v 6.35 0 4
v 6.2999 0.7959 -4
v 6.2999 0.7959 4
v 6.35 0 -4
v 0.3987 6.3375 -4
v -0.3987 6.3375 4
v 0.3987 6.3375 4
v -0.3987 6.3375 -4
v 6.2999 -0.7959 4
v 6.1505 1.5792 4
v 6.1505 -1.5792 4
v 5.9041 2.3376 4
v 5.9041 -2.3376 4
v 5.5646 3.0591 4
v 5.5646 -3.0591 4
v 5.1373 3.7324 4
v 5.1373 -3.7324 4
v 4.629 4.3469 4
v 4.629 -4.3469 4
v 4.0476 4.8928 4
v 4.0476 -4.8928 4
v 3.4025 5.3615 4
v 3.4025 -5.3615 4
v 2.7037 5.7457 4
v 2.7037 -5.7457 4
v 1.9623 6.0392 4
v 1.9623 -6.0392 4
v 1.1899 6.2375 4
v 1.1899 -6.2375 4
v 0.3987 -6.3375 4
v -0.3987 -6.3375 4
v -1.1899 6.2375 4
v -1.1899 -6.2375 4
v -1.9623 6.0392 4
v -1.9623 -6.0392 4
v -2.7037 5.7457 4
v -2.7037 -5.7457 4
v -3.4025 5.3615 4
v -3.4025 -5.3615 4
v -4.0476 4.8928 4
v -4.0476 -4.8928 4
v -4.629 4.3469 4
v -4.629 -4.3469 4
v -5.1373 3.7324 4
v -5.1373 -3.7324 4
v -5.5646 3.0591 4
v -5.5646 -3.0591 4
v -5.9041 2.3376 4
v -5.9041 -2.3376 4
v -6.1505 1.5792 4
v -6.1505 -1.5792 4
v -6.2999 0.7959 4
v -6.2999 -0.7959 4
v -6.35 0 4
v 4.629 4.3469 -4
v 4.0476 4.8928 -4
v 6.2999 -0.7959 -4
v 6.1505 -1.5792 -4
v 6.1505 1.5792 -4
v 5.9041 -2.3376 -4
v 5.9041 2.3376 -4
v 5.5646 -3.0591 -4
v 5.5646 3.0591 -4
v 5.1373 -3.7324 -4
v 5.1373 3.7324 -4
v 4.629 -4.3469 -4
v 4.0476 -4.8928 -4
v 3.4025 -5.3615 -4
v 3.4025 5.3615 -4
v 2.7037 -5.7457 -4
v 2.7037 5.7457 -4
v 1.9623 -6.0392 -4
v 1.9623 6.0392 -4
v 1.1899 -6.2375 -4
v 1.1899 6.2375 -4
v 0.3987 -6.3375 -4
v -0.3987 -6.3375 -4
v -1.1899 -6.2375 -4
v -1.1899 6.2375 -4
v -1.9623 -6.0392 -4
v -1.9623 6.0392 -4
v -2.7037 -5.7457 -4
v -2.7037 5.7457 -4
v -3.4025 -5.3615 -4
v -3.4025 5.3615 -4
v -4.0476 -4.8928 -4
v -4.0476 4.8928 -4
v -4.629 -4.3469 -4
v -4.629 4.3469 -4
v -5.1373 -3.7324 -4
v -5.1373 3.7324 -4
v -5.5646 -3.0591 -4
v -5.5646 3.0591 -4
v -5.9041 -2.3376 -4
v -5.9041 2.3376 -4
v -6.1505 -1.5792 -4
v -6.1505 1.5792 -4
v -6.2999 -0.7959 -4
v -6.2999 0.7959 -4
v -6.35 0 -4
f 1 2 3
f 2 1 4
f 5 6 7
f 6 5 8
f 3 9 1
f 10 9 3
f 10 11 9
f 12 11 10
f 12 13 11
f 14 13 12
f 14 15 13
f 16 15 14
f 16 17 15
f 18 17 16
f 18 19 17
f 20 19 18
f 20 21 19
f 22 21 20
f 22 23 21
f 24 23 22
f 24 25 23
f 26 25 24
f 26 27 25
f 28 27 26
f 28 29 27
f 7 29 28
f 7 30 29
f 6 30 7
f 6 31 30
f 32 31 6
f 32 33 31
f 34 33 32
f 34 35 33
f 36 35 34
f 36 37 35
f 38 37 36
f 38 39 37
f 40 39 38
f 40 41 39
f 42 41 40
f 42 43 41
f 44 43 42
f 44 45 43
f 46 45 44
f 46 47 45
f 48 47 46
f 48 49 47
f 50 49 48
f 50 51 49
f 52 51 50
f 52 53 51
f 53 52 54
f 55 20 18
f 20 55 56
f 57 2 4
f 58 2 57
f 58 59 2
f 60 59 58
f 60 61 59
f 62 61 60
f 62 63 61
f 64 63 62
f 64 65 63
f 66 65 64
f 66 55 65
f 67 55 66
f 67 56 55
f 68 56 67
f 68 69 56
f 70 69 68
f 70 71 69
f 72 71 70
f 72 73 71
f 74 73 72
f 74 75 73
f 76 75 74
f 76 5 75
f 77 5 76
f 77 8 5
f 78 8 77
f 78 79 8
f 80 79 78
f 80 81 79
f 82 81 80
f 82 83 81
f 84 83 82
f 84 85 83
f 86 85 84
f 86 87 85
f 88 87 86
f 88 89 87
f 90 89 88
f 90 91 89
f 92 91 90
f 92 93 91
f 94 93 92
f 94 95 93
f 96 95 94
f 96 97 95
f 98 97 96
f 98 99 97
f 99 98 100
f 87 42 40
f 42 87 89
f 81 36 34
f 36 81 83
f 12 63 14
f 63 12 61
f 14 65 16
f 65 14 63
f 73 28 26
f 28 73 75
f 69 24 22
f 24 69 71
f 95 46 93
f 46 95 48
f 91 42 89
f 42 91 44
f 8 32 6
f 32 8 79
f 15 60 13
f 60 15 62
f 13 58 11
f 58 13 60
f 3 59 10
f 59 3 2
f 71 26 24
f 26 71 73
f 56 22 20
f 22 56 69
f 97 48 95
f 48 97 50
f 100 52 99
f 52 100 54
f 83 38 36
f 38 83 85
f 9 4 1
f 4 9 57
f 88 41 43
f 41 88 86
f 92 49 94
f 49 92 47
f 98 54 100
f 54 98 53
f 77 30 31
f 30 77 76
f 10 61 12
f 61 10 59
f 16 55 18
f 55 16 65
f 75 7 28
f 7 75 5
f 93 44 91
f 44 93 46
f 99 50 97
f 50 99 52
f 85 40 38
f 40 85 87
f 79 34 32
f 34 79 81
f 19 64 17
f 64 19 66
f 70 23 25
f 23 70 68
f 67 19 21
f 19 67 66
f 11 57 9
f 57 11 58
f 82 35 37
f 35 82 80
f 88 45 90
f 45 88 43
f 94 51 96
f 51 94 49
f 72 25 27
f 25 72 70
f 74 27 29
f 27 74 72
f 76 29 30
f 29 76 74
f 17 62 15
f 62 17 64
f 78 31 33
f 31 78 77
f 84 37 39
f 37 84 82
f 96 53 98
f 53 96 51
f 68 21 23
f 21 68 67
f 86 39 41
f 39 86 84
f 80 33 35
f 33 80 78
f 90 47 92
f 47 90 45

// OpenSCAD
$fn = 50;


difference() {
	union() {
		translate(v = [0, 0, -4.0000000000]) {
			cylinder(h = 8, r = 6.3500000000);
		}
	}
	union() {
		translate(v = [0, 0, -100.0000000000]) {
			cylinder(h = 200, r = 0);
		}
	}
}
